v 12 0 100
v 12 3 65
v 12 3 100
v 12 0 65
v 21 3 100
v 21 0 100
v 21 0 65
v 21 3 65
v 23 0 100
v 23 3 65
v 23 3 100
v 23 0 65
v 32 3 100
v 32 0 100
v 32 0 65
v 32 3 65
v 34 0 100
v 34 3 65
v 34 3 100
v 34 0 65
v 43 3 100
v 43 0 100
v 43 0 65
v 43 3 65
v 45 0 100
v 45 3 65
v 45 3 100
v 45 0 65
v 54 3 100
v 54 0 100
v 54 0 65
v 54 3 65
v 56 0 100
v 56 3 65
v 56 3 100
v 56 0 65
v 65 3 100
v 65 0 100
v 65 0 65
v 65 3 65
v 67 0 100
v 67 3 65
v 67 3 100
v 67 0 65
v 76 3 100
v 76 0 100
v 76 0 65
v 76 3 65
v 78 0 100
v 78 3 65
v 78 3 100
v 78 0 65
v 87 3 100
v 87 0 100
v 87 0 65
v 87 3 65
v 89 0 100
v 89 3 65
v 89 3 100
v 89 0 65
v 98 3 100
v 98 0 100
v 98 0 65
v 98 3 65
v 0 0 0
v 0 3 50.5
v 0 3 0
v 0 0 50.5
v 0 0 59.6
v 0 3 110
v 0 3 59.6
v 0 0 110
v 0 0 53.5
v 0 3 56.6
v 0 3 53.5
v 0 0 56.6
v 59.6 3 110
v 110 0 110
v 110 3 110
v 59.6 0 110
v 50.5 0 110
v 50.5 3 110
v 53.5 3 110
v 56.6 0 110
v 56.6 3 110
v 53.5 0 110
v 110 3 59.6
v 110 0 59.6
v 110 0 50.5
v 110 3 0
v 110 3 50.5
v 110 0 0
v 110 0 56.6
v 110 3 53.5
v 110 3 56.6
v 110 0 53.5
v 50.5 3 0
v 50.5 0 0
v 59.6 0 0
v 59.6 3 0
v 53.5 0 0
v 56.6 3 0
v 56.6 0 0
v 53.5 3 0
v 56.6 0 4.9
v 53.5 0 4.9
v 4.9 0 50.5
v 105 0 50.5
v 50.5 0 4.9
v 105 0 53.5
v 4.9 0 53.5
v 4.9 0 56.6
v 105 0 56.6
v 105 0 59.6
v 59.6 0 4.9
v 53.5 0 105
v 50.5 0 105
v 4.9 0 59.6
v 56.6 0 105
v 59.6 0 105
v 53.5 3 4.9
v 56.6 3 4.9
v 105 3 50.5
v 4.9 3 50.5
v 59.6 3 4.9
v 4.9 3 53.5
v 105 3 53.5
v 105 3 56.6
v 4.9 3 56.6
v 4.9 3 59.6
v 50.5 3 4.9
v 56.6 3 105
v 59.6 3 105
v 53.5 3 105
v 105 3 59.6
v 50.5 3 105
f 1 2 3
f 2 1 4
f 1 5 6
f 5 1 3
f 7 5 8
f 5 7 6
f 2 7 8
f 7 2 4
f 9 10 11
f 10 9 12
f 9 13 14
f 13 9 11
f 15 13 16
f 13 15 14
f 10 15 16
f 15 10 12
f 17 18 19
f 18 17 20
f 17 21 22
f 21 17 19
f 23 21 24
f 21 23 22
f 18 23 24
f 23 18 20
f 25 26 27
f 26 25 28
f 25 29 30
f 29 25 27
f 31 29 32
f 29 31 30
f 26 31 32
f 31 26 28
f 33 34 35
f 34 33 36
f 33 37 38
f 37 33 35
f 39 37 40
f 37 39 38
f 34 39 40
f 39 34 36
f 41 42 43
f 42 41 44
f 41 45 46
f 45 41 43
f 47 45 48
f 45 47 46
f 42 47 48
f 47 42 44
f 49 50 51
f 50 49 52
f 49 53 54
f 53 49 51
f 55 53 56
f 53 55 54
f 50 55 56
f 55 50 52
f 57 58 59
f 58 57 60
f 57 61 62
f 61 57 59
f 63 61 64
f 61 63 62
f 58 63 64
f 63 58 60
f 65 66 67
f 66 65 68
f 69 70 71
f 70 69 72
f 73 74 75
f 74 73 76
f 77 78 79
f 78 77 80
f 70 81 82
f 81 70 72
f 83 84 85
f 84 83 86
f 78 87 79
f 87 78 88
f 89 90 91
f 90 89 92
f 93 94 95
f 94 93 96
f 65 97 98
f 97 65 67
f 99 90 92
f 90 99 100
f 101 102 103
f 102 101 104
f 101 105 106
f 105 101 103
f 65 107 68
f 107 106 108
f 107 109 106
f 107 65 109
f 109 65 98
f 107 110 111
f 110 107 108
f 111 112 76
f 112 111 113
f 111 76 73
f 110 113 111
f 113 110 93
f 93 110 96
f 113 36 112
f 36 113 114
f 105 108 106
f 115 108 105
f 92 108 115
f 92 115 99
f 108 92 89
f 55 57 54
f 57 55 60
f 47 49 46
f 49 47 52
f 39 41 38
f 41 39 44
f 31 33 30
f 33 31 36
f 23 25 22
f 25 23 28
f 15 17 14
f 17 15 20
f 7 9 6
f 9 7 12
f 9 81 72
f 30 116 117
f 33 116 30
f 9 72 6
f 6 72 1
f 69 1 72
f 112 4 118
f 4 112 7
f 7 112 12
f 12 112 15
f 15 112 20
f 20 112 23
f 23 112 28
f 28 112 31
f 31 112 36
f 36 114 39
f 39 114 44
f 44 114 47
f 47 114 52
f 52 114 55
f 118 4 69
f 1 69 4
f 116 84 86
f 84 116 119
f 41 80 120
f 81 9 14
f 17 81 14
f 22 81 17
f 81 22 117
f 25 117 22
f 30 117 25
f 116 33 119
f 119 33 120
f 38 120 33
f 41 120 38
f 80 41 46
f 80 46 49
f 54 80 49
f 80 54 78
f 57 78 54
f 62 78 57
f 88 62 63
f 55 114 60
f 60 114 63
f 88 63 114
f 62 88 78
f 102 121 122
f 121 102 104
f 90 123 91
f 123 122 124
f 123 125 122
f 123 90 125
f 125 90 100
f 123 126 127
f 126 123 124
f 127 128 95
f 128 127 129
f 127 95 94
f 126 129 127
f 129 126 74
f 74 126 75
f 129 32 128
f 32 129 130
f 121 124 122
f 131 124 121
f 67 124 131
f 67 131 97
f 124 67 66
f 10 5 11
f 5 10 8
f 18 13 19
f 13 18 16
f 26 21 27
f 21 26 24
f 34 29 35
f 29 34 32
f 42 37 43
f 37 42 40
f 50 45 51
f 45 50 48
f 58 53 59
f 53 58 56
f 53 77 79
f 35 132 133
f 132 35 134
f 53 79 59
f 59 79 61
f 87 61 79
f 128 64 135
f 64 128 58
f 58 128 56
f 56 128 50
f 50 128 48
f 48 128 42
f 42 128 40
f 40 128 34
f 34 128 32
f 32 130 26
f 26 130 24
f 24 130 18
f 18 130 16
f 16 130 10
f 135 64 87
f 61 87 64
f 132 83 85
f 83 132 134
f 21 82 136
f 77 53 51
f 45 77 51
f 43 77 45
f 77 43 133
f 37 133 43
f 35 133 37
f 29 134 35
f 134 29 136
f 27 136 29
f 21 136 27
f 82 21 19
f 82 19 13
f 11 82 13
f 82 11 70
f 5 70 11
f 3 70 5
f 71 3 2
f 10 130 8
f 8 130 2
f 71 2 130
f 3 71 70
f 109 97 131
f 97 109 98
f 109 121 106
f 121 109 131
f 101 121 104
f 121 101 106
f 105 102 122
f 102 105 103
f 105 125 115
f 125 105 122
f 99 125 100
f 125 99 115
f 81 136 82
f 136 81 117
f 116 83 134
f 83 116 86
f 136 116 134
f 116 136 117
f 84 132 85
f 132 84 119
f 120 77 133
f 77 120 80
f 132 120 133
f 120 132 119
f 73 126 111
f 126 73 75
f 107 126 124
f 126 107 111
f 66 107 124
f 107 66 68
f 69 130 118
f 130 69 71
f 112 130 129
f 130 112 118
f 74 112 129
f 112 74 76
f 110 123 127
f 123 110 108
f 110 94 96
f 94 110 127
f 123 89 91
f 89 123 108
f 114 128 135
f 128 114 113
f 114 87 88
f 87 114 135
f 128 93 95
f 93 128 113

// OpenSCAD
// ============================================================
// Hamster Habitat — Yarı Panel (alt solid, üst kafes)
// Boyut: 110x3x110mm | Notchlar yeni 3mm klips sistemine uygun
//
// Varyantlar (slicer veya assembly'de döndür):
//   Alt solid  / Üst kafes  → panel_yari() olduğu gibi
//   Sol solid  / Sag kafes  → rotate([0, 0,  90]) panel_yari();
//   Üst solid  / Alt kafes  → rotate([0, 0, 180]) panel_yari();
//   Sag solid  / Sol kafes  → rotate([0, 0, 270]) panel_yari();
// ============================================================
$fn = 32;

module panel_yari() {
  bar_w  = 2;   // cubuk kalinligi mm
  gap    = 9;   // aralik (max 10mm — hamster gecemesin)
  margin = 10;  // kafes bolumunde kenar boslugu
  mid    = 55;  // solid / kafes siniri (Z)

  color("mediumpurple", 0.9)
  difference() {
    cube([110, 3, 110]);

    // 4 kenar — 2x notch
    // 4 kenar — ikili notch kumesi (3mm aralik, merkez 55mm)
    translate([50.5, -0.1,  -0.1]) cube([3, 3.2, 5]);   // alt 1
    translate([56.6, -0.1,  -0.1]) cube([3, 3.2, 5]);   // alt 2
    translate([50.5, -0.1,   105]) cube([3, 3.2, 5]);   // ust 1
    translate([56.6, -0.1,   105]) cube([3, 3.2, 5]);   // ust 2
    translate([ -0.1, -0.1, 50.5]) cube([5, 3.2, 3]);   // sol 1
    translate([ -0.1, -0.1, 56.6]) cube([5, 3.2, 3]);   // sol 2
    translate([  105, -0.1, 50.5]) cube([5, 3.2, 3]);   // sag 1
    translate([  105, -0.1, 56.6]) cube([5, 3.2, 3]);   // sag 2

    // Ust yari kafes bosluklari
    // Z: mid+margin (65) → 110-margin (100) = 35mm bar yuksekligi
    for(i = [0:7])
      translate([margin + bar_w + i*(bar_w + gap), -0.1, mid + margin])
        cube([gap, 3.2, 110 - mid - 2*margin]);
  }
}

panel_yari();
